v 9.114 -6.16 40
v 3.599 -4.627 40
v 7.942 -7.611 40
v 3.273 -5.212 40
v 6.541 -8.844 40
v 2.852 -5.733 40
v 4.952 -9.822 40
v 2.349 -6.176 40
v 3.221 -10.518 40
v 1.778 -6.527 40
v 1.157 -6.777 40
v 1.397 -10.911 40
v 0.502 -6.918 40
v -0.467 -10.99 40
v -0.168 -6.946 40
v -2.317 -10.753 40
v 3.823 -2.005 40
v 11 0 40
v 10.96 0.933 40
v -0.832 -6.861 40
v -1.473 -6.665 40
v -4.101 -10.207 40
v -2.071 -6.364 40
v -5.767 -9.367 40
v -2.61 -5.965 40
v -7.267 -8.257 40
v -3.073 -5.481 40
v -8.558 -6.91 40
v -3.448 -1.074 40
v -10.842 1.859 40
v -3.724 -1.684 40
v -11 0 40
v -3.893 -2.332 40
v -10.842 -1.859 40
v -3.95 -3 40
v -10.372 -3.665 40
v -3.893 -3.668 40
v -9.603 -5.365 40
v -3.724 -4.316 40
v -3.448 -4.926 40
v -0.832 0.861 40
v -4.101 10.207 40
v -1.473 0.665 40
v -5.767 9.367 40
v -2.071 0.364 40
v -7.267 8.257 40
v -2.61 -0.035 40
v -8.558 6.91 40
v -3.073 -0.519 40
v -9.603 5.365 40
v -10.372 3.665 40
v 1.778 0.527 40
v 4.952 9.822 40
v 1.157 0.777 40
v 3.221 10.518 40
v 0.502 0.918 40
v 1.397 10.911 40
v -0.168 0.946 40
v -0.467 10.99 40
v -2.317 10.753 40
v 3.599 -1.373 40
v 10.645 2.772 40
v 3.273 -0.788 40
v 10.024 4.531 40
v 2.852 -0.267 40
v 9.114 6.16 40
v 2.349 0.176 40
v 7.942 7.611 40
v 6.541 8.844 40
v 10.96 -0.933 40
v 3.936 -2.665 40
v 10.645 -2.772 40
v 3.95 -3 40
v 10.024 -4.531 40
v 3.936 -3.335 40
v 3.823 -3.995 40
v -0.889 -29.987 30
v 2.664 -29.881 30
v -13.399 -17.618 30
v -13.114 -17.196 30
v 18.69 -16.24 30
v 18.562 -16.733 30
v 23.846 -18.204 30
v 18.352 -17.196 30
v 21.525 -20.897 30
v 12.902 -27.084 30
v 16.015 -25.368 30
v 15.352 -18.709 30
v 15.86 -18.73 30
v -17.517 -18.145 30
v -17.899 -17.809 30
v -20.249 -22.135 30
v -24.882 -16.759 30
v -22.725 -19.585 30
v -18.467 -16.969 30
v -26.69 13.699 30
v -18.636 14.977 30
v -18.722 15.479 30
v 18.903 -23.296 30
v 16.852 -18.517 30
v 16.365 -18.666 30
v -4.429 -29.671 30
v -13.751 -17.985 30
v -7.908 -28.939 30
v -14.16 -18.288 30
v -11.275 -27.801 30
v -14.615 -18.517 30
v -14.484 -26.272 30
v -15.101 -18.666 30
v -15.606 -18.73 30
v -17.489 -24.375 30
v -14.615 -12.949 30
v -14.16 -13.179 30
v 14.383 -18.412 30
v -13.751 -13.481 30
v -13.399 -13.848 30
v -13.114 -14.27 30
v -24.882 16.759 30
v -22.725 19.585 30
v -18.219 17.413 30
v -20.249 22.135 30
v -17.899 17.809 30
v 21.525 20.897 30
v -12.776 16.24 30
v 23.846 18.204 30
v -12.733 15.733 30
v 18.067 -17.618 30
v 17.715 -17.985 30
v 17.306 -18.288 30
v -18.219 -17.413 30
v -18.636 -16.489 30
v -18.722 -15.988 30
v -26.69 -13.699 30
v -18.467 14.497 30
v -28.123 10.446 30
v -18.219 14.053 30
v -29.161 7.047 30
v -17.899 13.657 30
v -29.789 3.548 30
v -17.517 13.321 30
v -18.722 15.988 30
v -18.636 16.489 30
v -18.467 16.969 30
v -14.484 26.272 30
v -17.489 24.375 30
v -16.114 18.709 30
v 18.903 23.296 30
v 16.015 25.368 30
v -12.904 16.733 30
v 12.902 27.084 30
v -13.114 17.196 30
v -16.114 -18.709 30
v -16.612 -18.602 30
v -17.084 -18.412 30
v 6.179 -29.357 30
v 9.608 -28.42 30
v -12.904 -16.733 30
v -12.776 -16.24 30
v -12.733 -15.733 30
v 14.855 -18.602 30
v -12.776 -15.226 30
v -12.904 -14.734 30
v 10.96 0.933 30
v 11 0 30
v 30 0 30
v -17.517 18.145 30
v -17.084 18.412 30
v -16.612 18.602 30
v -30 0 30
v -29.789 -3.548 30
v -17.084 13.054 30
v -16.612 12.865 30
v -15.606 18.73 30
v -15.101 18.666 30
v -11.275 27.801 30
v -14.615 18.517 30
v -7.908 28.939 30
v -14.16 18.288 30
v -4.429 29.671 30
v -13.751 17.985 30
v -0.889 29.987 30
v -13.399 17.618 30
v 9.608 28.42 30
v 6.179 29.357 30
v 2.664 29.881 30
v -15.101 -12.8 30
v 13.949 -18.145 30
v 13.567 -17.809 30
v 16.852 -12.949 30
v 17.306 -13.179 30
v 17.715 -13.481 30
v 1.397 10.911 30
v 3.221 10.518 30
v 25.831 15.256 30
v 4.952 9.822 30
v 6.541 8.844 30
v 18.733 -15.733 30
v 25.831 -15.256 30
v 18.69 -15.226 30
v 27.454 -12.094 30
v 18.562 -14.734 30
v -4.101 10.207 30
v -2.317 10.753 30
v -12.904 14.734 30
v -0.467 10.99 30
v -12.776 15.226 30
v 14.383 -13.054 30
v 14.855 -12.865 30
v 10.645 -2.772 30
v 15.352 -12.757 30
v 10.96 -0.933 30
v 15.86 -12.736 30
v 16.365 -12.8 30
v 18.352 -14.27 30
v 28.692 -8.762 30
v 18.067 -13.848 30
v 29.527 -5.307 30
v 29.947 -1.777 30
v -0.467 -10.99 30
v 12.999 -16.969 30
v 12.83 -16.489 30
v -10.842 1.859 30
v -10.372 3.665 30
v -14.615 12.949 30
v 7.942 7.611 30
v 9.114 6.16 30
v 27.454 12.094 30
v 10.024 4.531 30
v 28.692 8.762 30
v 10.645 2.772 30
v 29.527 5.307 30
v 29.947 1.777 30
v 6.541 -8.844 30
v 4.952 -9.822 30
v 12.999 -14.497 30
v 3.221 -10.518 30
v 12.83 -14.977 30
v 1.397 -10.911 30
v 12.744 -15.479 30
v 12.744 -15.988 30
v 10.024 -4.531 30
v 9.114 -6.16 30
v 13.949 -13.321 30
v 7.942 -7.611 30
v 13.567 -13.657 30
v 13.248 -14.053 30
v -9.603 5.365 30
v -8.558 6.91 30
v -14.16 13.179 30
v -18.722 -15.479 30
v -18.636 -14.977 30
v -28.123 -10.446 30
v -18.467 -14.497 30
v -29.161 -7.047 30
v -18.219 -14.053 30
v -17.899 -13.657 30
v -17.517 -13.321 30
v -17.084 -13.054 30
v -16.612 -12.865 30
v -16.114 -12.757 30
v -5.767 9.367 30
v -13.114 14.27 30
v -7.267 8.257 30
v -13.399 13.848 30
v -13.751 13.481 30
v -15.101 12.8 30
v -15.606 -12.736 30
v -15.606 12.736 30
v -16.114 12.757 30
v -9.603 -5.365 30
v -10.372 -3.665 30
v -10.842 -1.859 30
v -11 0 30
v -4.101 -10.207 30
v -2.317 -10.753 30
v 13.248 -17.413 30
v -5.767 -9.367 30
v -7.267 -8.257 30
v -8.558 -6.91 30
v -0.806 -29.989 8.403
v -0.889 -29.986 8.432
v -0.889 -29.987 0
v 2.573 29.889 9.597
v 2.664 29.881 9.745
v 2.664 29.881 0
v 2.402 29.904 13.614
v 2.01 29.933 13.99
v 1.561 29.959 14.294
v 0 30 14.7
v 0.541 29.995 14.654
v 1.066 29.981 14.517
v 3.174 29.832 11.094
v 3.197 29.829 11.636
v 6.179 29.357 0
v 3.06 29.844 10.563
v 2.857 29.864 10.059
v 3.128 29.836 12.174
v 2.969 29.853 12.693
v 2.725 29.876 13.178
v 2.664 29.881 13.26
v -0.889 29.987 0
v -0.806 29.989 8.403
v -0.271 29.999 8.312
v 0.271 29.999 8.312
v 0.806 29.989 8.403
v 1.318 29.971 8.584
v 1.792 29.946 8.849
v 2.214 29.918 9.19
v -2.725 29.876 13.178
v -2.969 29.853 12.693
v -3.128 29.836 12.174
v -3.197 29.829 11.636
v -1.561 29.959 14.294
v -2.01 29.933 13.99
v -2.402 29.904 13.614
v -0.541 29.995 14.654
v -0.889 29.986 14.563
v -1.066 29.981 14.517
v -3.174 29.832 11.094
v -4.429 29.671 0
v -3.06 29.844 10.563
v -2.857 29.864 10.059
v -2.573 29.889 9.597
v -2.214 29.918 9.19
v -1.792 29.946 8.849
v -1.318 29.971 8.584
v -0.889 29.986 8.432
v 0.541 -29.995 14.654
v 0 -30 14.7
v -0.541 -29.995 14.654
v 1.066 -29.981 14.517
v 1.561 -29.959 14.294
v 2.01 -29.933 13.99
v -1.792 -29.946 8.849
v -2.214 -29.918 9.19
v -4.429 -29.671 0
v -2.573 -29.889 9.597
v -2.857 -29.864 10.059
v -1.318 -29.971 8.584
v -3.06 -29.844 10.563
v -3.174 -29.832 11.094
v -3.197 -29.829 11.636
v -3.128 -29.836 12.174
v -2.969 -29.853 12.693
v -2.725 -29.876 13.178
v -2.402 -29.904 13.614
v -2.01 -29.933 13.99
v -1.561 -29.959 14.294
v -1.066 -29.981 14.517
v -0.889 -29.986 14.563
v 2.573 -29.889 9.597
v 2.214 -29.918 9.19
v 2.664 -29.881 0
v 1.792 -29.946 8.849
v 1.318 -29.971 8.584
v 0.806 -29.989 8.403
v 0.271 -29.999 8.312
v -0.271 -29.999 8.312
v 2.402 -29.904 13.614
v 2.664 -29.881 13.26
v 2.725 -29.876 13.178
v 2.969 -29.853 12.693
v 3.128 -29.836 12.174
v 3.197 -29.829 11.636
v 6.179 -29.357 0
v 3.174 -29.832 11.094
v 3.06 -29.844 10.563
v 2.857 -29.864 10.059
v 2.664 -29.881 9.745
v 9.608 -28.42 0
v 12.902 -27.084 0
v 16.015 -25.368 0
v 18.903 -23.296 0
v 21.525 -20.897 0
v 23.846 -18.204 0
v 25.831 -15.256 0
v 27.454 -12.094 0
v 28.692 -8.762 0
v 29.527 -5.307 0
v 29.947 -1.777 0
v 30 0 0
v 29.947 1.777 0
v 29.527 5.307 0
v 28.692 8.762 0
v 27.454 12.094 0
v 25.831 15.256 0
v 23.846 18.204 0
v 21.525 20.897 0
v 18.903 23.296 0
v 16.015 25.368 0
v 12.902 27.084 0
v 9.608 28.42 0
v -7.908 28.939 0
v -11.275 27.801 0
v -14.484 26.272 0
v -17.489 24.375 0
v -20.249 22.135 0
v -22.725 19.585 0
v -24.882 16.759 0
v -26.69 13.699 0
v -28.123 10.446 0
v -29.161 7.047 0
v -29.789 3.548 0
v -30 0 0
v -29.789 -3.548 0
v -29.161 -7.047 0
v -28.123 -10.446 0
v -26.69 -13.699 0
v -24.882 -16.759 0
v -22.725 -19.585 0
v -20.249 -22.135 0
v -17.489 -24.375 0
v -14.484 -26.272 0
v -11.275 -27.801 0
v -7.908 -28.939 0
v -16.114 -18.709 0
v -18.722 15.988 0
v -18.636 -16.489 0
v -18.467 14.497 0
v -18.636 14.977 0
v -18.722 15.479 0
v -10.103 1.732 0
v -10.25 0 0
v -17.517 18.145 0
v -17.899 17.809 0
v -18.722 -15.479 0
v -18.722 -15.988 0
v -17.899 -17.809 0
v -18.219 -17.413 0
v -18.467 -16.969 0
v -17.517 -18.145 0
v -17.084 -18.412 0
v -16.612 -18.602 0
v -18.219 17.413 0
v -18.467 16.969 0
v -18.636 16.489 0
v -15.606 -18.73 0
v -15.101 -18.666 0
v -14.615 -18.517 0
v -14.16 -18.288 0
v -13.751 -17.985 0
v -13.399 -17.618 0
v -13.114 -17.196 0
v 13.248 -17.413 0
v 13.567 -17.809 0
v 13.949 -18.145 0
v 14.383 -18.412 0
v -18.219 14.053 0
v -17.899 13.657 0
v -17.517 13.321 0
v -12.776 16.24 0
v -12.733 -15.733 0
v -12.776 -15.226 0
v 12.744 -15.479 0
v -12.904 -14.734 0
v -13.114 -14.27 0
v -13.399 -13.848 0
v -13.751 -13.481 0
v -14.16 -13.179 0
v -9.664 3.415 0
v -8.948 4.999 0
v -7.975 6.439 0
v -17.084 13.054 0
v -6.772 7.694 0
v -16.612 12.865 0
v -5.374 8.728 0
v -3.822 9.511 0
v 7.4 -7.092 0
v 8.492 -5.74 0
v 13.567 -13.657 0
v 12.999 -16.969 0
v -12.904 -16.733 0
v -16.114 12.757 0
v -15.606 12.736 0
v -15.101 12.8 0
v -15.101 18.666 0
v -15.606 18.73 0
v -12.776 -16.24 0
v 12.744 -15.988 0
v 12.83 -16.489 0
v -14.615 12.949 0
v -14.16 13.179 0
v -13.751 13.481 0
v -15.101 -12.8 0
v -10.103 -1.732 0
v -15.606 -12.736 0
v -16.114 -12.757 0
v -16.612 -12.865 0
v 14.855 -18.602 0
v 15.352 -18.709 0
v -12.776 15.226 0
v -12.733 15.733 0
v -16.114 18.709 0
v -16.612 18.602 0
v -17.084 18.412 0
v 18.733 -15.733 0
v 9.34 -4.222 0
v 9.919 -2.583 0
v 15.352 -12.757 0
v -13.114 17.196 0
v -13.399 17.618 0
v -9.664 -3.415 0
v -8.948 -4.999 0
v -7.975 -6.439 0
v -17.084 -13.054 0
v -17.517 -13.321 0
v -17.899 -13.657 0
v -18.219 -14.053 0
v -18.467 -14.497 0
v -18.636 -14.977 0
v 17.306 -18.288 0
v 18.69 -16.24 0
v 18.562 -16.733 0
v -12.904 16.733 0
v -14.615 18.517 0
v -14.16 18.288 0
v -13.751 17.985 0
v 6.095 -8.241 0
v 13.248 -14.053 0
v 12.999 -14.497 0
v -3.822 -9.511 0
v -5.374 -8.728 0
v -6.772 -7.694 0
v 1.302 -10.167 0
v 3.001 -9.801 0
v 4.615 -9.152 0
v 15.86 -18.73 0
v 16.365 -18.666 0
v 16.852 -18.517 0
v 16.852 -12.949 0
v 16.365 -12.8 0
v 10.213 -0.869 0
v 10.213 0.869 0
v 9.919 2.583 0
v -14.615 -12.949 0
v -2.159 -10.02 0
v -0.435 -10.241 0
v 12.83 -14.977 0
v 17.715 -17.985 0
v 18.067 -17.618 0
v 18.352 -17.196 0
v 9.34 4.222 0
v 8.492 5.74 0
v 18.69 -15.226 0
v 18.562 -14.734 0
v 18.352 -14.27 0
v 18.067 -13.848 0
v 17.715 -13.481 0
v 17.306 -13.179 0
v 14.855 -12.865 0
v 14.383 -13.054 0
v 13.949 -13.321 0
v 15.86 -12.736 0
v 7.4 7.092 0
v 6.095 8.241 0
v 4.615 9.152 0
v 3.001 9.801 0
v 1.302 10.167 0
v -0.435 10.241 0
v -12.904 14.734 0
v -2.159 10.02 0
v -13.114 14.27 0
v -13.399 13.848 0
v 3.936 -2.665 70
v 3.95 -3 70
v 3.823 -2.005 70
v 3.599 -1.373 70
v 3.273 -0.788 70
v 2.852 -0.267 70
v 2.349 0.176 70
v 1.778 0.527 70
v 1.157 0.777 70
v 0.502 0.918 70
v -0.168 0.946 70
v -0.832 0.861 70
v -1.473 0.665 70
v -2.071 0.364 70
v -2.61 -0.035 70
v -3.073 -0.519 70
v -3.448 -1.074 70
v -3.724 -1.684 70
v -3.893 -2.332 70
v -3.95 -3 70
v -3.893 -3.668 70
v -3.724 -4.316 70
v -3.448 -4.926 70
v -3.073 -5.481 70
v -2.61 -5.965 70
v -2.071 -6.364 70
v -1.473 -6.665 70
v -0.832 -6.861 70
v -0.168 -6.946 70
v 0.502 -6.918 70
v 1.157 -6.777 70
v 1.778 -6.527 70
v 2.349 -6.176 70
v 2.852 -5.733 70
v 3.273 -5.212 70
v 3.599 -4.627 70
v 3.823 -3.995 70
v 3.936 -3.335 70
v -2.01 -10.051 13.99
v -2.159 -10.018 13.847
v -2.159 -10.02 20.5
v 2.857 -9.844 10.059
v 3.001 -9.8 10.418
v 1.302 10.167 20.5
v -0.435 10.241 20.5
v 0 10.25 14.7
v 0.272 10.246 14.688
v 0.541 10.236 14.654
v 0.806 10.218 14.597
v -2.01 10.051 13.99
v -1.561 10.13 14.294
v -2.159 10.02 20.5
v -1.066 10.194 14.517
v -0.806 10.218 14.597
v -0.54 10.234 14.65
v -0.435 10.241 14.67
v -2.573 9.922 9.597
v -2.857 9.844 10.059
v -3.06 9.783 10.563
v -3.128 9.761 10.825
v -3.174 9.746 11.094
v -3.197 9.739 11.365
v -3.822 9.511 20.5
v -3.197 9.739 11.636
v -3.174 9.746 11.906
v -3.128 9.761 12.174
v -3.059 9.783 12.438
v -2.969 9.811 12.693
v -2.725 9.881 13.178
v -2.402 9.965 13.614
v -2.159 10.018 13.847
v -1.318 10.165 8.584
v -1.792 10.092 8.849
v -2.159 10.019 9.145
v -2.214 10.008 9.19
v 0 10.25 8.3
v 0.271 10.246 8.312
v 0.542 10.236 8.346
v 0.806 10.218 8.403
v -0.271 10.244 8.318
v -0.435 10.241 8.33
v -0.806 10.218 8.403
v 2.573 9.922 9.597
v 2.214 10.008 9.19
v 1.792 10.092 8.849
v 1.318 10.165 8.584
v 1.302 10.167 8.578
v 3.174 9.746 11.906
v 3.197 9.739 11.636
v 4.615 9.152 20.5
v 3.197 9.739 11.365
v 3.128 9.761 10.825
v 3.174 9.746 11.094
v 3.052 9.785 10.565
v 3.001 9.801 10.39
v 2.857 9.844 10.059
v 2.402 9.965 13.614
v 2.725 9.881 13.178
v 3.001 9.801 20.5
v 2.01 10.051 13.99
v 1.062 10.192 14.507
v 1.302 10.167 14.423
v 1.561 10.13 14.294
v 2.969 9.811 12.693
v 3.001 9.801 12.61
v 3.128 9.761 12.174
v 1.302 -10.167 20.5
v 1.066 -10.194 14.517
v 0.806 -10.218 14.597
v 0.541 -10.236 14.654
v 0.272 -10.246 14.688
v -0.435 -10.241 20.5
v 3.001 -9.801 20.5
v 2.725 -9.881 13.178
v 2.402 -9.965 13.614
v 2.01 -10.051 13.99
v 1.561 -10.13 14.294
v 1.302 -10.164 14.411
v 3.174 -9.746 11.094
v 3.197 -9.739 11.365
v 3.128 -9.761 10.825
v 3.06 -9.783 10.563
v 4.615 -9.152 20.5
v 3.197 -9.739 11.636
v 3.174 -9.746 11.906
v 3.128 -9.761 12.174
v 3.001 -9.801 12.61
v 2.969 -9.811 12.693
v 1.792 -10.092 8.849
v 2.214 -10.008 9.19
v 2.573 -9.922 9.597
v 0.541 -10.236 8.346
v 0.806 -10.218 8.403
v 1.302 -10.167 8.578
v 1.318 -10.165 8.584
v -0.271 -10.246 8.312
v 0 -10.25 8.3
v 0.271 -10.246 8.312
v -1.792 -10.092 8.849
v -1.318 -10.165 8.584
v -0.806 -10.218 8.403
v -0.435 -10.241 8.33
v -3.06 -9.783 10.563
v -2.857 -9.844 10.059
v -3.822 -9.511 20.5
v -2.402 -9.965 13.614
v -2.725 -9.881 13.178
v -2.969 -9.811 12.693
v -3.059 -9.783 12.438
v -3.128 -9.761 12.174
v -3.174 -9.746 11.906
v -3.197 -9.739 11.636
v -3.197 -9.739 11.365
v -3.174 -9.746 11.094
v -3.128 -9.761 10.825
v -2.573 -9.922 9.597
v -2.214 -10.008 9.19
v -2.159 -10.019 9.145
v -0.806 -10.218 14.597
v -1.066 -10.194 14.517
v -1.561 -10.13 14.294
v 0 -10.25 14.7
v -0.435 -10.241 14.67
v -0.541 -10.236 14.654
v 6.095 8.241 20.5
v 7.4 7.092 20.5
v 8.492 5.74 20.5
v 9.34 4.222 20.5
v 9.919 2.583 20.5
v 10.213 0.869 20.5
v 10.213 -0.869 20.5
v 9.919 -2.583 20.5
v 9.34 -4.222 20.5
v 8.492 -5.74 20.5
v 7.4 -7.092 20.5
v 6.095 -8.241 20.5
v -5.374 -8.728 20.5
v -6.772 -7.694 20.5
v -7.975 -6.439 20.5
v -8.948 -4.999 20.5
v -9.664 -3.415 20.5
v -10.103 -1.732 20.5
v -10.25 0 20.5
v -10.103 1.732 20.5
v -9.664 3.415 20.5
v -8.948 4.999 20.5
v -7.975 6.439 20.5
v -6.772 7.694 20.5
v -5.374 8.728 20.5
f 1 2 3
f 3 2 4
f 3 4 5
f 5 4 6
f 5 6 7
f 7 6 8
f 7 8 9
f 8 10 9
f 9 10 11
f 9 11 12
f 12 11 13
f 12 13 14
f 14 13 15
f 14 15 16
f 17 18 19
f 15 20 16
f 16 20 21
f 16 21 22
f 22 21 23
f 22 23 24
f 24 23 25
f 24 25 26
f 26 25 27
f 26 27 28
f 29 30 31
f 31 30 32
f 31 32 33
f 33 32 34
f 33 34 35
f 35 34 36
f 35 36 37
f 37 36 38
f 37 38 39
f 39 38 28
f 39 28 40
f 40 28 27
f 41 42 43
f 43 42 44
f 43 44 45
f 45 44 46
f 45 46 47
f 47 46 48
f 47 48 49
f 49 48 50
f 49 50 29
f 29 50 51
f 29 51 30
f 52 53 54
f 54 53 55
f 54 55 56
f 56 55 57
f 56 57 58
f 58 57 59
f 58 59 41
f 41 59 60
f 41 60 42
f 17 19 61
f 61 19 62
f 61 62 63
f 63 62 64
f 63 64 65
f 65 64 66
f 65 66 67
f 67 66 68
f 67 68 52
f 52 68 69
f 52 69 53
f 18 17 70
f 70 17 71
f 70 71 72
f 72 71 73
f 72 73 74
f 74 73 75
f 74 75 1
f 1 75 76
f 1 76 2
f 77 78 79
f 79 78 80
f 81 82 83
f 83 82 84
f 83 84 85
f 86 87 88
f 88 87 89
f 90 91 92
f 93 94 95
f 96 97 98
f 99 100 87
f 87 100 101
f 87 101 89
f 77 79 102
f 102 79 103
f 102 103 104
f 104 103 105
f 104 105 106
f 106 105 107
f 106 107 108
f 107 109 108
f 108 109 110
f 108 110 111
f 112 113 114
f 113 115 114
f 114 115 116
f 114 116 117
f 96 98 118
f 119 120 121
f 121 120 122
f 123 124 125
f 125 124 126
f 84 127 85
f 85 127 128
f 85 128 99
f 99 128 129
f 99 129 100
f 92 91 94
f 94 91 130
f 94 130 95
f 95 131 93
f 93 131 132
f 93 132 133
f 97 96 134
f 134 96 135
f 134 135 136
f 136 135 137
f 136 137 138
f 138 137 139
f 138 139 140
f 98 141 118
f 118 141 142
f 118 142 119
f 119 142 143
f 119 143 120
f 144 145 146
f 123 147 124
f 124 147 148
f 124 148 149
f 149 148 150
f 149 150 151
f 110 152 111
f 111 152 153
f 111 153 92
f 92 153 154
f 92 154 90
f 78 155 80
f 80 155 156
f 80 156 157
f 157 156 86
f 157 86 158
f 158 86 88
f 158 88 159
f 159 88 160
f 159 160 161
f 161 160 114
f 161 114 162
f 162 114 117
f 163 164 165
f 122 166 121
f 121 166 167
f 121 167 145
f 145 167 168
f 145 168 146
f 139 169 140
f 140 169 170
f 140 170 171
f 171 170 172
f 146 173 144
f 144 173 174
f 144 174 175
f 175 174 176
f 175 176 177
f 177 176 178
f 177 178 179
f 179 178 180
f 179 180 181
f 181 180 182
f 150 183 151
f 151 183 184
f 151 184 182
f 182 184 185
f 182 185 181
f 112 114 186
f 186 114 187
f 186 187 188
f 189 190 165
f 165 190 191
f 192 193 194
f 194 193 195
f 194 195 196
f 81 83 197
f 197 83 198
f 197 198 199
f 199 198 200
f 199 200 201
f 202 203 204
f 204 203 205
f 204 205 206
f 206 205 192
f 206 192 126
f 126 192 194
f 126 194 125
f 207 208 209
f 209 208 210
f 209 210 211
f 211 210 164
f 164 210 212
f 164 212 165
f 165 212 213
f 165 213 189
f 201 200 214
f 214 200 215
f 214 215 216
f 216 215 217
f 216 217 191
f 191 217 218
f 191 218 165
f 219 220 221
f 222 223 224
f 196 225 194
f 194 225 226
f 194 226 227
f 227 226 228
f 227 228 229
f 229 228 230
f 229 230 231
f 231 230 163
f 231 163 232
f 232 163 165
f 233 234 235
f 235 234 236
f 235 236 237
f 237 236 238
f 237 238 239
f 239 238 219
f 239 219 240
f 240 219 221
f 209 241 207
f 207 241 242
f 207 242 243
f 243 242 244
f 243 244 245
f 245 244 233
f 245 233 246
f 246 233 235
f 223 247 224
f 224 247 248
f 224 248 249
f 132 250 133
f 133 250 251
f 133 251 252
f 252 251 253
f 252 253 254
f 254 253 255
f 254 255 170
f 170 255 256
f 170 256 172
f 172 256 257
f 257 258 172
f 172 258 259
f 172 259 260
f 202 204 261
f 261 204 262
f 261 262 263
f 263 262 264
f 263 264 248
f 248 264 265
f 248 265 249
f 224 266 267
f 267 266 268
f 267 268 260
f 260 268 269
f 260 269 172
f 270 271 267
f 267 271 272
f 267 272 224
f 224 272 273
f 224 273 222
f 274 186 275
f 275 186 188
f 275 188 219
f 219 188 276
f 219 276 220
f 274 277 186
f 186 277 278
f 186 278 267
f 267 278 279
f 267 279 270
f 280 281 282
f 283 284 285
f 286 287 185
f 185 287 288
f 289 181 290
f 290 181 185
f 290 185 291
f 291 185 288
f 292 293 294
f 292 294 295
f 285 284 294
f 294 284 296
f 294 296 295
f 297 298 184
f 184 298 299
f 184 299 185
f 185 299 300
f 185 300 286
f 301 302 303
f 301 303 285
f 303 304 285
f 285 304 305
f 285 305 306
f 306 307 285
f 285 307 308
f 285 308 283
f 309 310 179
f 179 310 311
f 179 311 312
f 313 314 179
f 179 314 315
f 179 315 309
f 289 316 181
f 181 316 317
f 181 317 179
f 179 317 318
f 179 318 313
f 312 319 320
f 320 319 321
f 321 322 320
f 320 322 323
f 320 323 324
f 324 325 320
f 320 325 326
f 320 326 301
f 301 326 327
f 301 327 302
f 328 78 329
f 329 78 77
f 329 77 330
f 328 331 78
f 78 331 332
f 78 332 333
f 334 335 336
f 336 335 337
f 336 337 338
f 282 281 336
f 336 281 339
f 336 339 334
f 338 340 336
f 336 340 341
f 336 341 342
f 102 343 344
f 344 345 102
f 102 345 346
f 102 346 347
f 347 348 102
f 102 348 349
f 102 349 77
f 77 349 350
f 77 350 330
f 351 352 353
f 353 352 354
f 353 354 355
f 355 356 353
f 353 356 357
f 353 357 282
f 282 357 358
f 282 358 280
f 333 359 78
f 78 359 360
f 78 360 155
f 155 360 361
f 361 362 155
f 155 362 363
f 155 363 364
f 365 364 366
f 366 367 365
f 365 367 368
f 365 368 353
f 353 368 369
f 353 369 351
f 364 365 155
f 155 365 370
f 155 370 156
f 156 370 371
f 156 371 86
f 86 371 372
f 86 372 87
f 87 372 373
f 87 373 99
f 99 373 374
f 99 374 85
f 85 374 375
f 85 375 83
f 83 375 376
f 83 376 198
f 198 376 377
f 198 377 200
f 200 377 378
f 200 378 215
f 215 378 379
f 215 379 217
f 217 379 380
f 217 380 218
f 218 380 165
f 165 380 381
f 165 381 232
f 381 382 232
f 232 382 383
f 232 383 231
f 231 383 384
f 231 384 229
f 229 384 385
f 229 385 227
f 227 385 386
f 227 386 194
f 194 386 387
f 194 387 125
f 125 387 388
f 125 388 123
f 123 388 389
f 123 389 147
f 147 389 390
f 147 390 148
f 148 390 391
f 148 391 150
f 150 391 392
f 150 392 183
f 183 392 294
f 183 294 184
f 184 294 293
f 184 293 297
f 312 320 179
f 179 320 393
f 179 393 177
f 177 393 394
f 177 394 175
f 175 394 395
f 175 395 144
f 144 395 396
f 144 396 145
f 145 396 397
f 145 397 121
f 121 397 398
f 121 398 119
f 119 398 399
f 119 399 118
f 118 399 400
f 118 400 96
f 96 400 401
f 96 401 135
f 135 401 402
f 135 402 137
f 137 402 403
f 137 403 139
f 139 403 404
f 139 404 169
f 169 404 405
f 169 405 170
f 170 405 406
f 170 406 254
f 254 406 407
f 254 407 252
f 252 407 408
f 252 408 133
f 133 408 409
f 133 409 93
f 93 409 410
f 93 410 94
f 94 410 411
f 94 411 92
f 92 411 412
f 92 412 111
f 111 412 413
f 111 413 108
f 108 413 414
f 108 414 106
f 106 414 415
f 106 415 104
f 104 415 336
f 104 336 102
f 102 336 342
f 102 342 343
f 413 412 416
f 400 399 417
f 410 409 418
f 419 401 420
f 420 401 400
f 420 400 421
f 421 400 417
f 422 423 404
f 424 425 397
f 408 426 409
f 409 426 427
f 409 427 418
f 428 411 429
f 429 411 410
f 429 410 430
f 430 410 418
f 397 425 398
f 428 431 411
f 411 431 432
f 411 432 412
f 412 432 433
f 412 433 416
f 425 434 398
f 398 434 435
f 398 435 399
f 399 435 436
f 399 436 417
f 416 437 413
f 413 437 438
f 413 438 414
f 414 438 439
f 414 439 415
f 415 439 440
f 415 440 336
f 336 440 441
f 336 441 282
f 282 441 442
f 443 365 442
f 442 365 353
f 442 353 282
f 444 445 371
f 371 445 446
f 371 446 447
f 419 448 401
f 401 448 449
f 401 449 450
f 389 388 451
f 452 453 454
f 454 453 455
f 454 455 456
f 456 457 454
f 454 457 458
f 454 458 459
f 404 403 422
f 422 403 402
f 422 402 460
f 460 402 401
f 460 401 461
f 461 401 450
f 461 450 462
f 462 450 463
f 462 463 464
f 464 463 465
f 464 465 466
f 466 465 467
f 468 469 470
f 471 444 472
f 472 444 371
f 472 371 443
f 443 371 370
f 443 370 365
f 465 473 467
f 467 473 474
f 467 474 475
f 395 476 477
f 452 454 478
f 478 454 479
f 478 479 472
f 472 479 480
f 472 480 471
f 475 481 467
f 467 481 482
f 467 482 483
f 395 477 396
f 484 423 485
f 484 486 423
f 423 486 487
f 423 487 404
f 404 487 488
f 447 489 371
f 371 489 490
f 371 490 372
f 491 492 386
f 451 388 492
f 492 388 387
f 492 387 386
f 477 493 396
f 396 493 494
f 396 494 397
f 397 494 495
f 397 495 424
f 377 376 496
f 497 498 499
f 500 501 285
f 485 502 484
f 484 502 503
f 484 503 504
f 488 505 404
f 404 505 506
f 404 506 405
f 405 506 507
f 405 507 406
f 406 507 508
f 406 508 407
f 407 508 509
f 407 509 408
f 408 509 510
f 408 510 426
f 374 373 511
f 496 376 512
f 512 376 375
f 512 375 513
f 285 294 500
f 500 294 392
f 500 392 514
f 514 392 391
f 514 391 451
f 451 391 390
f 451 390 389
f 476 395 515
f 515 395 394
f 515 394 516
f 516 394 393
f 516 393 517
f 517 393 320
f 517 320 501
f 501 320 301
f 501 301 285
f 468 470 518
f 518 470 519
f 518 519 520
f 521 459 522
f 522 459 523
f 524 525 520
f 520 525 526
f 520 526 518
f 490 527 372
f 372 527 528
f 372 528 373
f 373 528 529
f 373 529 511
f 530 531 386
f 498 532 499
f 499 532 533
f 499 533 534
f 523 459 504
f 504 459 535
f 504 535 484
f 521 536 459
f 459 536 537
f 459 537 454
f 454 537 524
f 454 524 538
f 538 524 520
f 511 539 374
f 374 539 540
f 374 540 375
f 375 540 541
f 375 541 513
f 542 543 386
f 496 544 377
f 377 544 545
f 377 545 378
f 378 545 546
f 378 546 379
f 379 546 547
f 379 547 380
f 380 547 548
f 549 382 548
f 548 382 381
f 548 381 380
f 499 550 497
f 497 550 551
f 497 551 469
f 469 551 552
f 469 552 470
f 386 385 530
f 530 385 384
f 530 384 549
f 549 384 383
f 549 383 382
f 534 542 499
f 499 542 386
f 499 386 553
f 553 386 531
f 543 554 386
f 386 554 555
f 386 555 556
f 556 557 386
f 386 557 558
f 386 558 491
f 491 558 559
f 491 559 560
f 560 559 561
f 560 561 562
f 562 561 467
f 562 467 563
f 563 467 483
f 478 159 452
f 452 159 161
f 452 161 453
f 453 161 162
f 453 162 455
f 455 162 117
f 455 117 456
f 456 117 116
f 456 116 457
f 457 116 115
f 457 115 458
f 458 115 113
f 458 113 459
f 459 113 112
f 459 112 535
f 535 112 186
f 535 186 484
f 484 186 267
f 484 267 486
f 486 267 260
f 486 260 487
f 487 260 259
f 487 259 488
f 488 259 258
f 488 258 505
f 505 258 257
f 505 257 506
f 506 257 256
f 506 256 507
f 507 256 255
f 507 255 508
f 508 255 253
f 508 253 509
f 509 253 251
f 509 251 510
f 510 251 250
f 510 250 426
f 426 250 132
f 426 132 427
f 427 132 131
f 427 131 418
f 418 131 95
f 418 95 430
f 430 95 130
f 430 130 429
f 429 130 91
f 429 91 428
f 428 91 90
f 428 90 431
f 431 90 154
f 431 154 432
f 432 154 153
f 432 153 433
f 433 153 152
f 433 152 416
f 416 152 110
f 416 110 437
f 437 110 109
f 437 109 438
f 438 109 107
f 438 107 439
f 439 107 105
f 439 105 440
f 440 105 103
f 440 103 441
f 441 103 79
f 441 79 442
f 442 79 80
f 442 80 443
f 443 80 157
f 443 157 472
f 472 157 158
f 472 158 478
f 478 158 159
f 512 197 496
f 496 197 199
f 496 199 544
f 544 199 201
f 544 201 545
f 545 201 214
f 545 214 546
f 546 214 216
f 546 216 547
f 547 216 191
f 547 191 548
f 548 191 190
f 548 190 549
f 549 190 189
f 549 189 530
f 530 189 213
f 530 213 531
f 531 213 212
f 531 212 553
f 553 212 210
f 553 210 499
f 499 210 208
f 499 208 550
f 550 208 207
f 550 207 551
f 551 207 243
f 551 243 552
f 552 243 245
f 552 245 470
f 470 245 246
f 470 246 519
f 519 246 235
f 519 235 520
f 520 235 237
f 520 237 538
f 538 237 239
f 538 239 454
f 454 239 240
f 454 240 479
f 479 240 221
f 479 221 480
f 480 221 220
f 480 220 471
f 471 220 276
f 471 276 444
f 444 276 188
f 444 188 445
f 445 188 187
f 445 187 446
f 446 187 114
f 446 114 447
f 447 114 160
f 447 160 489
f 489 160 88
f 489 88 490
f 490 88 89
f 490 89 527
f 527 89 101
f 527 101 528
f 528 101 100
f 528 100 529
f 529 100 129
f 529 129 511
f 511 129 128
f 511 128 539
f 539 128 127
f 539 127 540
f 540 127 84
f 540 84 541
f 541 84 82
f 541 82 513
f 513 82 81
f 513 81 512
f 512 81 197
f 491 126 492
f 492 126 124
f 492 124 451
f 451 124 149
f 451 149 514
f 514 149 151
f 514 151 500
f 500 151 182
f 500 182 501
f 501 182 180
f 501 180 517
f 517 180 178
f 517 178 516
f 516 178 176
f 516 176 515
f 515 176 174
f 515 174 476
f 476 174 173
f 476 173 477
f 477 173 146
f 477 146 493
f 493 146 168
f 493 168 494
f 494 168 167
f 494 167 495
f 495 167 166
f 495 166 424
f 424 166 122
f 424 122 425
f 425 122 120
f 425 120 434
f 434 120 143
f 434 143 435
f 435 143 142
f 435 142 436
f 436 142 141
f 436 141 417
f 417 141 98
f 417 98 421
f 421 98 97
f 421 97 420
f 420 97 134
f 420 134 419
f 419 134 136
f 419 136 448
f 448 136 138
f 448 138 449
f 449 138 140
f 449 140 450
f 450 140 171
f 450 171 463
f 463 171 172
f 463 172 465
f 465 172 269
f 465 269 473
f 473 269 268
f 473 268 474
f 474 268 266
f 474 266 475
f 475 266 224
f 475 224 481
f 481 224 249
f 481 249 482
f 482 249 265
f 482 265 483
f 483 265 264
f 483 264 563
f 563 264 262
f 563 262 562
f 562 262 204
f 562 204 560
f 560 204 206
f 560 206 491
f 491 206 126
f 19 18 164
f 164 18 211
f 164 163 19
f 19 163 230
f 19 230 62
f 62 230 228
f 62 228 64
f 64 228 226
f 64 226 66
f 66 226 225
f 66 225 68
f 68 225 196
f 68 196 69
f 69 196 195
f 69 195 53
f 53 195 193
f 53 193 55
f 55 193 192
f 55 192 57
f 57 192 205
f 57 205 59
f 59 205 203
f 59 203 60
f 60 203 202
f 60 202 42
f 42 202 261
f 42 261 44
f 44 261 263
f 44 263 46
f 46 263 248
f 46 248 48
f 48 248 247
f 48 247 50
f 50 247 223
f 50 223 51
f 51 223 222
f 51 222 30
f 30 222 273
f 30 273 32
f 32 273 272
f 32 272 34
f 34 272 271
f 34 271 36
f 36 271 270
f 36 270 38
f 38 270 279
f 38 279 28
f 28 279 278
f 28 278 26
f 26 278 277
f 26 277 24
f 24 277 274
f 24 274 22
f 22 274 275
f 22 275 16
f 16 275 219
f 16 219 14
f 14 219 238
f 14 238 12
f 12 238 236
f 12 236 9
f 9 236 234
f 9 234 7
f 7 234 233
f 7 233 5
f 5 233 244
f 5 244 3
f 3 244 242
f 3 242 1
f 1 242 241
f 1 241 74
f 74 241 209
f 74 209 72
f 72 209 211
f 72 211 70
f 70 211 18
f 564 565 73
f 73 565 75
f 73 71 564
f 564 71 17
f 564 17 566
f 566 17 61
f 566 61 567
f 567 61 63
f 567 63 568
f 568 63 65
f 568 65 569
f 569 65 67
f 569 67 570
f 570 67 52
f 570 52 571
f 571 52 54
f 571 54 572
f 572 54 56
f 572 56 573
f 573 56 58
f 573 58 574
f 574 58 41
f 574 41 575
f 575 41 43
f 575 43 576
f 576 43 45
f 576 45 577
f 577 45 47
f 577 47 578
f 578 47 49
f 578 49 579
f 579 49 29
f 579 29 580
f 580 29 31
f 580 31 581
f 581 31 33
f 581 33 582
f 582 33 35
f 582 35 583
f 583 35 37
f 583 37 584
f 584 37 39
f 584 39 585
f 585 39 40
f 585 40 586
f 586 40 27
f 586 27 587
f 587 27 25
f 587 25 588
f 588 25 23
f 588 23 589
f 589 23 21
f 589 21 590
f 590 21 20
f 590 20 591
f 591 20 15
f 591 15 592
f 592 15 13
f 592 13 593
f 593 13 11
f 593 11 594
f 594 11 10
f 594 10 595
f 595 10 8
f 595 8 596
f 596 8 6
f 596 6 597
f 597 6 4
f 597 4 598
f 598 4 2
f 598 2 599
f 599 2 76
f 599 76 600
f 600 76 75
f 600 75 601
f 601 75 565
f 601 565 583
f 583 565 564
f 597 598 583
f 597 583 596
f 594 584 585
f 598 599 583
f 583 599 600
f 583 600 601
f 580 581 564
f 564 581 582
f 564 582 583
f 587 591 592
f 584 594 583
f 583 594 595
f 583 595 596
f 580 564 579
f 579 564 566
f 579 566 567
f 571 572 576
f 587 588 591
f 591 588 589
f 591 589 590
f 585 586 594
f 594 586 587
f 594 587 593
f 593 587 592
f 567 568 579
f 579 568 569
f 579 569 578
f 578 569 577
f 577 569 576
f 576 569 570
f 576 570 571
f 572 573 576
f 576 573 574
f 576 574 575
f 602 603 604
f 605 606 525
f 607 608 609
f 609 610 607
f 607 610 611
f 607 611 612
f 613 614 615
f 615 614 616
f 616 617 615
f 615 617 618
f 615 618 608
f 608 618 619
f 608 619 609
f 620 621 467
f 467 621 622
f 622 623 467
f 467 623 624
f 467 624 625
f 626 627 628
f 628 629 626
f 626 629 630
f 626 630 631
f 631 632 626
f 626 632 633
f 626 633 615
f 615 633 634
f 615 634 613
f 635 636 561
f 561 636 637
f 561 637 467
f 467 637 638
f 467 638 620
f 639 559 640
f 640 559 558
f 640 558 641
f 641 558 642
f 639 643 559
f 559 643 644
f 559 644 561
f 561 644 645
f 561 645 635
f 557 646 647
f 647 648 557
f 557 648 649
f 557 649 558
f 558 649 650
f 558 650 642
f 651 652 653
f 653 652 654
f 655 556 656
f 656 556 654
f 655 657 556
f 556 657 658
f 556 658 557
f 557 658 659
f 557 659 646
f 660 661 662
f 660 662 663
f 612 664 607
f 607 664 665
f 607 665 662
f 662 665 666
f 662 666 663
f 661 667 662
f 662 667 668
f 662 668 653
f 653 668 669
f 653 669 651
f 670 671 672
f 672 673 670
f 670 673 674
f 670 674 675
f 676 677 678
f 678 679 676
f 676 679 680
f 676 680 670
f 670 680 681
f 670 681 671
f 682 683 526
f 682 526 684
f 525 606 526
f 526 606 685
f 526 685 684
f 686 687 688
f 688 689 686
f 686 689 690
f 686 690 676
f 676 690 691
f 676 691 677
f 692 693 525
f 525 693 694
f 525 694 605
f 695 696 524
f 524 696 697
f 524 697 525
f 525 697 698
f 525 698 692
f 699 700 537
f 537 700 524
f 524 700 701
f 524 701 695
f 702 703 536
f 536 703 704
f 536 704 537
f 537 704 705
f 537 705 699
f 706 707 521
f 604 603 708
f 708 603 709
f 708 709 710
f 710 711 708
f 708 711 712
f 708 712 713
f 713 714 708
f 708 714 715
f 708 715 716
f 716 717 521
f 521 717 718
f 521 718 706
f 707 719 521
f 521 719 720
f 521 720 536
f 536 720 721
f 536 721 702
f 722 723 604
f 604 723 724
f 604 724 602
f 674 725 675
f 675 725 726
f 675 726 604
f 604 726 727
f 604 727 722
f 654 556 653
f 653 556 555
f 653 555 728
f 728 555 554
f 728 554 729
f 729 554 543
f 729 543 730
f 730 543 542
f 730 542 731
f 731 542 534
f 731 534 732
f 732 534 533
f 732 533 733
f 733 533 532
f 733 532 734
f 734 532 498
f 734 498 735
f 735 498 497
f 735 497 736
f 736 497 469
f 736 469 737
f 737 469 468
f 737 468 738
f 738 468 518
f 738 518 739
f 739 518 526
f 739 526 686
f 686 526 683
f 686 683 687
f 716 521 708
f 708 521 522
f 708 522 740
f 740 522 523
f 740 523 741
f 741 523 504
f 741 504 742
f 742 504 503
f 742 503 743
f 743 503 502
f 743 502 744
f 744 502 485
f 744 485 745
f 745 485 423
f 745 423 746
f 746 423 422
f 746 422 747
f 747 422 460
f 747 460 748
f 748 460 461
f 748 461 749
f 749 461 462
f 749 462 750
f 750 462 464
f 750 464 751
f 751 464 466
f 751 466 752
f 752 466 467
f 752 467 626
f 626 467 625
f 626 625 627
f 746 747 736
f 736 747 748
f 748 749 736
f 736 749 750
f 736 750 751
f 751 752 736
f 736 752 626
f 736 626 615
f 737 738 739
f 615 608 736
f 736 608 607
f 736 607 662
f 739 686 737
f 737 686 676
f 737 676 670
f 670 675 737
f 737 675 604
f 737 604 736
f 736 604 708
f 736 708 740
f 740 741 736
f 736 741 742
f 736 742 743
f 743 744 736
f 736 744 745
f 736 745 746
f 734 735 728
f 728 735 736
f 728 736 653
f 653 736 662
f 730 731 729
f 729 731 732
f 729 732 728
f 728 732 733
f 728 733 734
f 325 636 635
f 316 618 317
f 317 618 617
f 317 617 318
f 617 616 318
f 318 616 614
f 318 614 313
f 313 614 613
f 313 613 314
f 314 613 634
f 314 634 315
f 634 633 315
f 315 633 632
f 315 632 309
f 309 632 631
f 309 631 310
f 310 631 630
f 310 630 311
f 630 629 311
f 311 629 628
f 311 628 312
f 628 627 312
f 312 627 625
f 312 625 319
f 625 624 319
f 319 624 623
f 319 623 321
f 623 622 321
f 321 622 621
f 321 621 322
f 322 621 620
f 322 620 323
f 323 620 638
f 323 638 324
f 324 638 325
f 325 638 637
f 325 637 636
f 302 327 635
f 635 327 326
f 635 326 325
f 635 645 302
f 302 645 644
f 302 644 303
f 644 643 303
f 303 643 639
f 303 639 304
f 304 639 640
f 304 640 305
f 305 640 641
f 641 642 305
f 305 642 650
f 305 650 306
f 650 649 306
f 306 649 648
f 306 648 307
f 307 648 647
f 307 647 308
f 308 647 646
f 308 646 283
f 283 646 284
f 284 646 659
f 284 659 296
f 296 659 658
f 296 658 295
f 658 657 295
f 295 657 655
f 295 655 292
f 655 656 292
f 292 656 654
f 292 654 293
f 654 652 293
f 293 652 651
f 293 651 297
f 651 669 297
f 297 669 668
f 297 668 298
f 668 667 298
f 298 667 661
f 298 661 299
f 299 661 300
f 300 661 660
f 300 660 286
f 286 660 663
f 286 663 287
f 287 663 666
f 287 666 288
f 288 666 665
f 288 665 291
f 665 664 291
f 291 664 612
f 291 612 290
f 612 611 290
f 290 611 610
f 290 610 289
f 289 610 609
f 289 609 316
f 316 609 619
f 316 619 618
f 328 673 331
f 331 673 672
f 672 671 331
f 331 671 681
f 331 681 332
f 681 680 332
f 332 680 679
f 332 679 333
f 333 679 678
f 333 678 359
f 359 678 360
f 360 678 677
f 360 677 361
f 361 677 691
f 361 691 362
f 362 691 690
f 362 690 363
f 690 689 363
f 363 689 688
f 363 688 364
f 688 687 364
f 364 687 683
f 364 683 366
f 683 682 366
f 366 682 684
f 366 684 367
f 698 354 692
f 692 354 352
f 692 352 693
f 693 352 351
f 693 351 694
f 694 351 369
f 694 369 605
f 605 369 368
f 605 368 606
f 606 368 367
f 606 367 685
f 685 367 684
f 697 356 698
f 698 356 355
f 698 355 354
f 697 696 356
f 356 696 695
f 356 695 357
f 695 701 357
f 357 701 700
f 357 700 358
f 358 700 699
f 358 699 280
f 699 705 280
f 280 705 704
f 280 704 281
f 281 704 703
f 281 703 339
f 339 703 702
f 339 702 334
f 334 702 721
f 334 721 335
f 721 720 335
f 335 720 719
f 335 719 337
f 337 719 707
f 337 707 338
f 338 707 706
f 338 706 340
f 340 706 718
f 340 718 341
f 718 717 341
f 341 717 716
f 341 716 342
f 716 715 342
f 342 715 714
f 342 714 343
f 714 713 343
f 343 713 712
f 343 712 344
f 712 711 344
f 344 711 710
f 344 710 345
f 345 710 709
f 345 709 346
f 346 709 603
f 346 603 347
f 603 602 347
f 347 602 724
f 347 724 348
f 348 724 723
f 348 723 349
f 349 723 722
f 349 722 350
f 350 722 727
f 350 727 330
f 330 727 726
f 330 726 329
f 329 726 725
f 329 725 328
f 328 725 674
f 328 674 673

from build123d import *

# Parameters (mm, degrees)
SKETCH1_R             = 30
BOSS_EXTRUDE1_DEPTH   = 30
F_6_0MM_DOWEL_HOLE1_D = 6
SKETCH2_R             = 11
BOSS_EXTRUDE2_DEPTH   = 10
SKETCH9_R             = 3.95
BOSS_EXTRUDE3_DEPTH   = 30
SKETCH10_R            = 10.25
CUT_EXTRUDE2_DEPTH    = 20.5
SKETCH12_R            = 3.2
CUT_EXTRUDE3_DEPTH    = 70


with BuildPart() as part:
    # Sketch1 → Boss-Extrude1 (new body)
    with BuildSketch(Plane.XY):
        Circle(SKETCH1_R)
    extrude(amount=BOSS_EXTRUDE1_DEPTH)

    # Ø6.0mm Dowel Hole1 (through all)
    with Locations(Plane.XY.offset(30)):
        with Locations((-15.733125881, 15.733125881), (15.733125881, -15.733125881), (-15.733125881, -15.733125881)):
            Hole(F_6_0MM_DOWEL_HOLE1_D / 2)

    # Sketch2 → Boss-Extrude2 (add)
    with BuildSketch(Plane.XY.offset(30)):
        Circle(SKETCH2_R)
    extrude(amount=BOSS_EXTRUDE2_DEPTH)

    # Sketch9 → Boss-Extrude3 (add)
    with BuildSketch(Plane.XY.offset(40)):
        with Locations((0, -3)):
            Circle(SKETCH9_R)
    extrude(amount=BOSS_EXTRUDE3_DEPTH)

    # Sketch10 → Cut-Extrude2 (cut)
    with BuildSketch(Plane(origin=(0, 0, 0), x_dir=(-1, 0, 0), z_dir=(0, 0, -1))):
        Circle(SKETCH10_R)
    extrude(amount=-CUT_EXTRUDE2_DEPTH, mode=Mode.SUBTRACT)

    # Sketch12 → Cut-Extrude3 (cut)
    with BuildSketch(Plane(origin=(0, 30, 0), x_dir=(1, 0, 0), z_dir=(0, 1, 0))):
        with Locations(Location((0, -11.5, 0), (0, 0, 270))):
            Circle(SKETCH12_R)
    extrude(amount=-CUT_EXTRUDE3_DEPTH, mode=Mode.SUBTRACT)


solid = part.part
